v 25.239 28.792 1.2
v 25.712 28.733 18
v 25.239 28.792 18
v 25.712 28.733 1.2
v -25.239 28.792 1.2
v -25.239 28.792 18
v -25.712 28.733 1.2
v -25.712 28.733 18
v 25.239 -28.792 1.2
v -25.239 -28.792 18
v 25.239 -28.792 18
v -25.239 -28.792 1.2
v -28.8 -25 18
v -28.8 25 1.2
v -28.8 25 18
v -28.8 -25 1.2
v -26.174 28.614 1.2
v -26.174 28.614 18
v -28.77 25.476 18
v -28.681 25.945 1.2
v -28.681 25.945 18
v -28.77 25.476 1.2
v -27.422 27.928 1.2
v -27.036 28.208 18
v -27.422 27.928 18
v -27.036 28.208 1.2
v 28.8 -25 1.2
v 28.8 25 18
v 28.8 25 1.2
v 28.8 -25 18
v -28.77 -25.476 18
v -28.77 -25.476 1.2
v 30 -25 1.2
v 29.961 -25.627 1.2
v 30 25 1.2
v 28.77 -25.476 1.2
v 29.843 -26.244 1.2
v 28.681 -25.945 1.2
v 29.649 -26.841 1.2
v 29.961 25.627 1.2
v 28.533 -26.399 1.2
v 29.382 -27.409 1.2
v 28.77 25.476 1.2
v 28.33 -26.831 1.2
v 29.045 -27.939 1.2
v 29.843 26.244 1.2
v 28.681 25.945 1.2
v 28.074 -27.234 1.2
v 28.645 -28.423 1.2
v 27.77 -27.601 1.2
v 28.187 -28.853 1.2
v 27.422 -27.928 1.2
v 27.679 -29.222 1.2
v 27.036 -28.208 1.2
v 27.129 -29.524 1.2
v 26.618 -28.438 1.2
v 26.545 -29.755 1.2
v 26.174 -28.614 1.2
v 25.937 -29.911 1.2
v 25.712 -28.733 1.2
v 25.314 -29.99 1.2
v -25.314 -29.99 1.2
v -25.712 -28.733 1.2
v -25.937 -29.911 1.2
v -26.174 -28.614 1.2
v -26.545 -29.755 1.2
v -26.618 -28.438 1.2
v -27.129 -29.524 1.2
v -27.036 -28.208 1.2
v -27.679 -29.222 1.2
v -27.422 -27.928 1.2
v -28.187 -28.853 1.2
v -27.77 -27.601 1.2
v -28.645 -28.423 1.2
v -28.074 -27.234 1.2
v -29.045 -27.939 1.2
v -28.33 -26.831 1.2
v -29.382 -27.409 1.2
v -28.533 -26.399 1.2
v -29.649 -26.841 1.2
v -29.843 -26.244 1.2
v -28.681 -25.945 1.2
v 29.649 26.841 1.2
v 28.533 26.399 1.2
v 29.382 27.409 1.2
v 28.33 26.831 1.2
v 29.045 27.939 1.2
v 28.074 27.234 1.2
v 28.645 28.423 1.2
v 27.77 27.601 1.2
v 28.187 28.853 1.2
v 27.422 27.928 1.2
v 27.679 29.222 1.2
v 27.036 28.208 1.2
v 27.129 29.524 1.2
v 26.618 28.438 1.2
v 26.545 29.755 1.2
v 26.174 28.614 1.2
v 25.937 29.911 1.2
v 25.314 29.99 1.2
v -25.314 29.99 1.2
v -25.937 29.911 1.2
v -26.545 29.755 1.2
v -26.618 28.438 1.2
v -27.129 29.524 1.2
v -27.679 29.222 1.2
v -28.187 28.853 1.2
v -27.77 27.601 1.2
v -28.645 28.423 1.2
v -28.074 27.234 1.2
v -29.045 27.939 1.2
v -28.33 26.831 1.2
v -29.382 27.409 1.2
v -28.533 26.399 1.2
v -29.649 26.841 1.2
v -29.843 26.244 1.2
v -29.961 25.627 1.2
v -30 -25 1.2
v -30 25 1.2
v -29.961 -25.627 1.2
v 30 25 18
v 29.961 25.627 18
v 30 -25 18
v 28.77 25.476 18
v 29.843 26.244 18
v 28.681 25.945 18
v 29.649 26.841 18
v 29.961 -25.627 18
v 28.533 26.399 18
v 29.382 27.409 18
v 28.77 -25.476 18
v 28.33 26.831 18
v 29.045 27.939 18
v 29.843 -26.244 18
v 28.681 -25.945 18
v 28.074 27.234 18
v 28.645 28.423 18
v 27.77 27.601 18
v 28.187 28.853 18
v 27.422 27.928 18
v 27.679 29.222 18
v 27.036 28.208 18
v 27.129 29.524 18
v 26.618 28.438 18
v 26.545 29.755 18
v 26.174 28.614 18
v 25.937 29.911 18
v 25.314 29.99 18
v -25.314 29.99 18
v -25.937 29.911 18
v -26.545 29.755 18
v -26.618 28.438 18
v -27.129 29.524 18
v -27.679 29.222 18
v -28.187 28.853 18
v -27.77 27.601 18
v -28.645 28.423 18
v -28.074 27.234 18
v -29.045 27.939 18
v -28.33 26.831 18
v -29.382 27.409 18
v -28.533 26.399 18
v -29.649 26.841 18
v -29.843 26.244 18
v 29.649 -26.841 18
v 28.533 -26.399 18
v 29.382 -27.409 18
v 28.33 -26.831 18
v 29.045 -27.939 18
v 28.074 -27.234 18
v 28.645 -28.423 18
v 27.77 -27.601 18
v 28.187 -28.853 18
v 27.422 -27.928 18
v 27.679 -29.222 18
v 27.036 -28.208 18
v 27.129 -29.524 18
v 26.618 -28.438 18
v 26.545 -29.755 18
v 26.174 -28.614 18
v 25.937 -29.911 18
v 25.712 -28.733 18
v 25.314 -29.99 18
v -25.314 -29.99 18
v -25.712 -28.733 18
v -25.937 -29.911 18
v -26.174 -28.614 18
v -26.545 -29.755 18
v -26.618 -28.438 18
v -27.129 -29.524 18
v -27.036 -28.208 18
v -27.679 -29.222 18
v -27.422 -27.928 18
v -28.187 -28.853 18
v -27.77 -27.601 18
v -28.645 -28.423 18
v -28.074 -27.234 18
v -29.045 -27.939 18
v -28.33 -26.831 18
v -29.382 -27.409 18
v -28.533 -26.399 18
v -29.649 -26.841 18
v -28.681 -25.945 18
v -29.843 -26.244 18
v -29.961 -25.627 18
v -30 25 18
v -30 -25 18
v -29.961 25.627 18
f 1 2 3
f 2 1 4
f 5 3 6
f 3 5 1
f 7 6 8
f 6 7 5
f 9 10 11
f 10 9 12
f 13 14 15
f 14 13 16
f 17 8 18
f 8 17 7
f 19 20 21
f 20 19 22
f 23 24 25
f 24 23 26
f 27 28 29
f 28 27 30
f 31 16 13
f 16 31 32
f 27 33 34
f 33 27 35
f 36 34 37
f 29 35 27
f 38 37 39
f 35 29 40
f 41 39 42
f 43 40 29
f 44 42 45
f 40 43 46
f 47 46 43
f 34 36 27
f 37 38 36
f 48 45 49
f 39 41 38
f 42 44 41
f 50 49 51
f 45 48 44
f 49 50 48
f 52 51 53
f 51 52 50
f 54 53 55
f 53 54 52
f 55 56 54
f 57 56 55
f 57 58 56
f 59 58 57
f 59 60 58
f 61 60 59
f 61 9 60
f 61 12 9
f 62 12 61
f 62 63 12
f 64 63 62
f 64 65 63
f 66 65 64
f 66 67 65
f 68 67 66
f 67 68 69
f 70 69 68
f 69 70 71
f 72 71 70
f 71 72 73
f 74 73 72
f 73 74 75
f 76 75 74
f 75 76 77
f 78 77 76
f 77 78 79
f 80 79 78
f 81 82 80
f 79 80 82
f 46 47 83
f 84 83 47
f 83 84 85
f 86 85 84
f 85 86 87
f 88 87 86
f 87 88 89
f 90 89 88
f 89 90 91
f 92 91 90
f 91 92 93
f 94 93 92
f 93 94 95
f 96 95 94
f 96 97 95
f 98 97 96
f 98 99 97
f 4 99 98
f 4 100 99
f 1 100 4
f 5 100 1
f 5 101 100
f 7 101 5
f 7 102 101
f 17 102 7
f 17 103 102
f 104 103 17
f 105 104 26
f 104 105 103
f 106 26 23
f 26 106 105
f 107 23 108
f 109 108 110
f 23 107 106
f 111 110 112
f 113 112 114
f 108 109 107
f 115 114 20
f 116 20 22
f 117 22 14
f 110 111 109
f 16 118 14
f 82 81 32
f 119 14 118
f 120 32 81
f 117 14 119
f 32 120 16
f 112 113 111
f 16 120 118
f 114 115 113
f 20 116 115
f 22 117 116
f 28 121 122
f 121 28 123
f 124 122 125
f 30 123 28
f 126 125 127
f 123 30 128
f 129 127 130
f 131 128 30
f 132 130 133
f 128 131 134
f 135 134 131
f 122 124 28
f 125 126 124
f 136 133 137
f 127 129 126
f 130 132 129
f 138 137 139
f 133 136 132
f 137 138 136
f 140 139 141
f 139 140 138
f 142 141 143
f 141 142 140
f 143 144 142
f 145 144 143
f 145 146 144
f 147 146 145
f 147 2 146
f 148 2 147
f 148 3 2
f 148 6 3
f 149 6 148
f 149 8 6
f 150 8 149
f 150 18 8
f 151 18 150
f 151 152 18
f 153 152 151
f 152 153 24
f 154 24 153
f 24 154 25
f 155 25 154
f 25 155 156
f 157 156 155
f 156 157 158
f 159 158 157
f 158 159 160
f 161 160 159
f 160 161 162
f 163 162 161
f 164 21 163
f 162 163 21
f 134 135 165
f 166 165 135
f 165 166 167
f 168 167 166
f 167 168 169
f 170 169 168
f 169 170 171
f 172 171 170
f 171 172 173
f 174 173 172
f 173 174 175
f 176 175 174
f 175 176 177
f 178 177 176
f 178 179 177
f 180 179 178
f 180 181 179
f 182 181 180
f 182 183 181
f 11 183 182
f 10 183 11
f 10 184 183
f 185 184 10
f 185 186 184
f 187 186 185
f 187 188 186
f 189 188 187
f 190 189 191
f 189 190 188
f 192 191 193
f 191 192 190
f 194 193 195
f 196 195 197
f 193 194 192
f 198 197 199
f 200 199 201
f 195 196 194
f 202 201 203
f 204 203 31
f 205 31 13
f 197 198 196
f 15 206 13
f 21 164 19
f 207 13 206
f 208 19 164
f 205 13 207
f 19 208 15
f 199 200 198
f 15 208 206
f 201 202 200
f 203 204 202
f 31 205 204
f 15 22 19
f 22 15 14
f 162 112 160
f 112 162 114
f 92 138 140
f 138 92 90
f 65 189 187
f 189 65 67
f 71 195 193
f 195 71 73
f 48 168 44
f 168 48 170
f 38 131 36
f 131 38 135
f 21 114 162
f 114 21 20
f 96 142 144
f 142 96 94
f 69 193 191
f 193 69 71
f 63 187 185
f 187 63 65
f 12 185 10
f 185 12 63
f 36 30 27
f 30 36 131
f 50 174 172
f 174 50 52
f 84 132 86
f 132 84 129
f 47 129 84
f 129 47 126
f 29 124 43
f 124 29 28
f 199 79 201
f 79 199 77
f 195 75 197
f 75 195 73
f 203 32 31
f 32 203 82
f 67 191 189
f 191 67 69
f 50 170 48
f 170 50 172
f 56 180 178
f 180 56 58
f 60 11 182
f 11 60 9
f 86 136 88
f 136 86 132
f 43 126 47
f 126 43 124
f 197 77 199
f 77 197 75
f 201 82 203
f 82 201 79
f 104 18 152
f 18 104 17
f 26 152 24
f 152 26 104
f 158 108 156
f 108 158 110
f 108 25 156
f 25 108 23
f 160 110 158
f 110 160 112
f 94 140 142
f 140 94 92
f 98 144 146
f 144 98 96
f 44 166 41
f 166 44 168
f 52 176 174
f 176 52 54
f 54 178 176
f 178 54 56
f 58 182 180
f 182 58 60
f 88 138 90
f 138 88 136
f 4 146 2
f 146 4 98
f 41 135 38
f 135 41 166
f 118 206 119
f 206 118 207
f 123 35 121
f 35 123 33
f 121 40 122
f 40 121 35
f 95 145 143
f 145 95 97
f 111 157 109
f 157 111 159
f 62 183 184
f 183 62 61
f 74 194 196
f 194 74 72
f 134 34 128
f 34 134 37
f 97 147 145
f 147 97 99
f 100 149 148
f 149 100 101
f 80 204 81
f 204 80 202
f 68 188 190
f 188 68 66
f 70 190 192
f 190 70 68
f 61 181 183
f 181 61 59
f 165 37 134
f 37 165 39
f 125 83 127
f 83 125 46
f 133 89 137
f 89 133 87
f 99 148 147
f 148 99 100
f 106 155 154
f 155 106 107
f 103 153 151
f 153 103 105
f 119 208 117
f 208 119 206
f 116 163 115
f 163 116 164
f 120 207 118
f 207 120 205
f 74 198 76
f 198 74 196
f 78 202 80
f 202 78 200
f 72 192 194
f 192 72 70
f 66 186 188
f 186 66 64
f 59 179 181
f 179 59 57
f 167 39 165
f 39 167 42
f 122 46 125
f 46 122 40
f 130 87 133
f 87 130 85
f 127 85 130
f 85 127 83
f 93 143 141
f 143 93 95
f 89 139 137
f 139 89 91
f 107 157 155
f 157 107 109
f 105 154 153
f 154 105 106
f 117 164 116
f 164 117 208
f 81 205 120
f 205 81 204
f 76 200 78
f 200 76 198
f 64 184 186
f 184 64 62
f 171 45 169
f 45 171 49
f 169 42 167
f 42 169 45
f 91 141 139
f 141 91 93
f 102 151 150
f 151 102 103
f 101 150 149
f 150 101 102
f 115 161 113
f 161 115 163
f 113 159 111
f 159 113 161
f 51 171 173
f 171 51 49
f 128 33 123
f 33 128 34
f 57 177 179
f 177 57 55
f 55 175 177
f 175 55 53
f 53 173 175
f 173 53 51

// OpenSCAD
$fn = 50;


difference() {
	union() {
		hull() {
			translate(v = [-25.0000000000, 25.0000000000, 0]) {
				cylinder(h = 18, r = 5);
			}
			translate(v = [25.0000000000, 25.0000000000, 0]) {
				cylinder(h = 18, r = 5);
			}
			translate(v = [-25.0000000000, -25.0000000000, 0]) {
				cylinder(h = 18, r = 5);
			}
			translate(v = [25.0000000000, -25.0000000000, 0]) {
				cylinder(h = 18, r = 5);
			}
		}
	}
	union() {
		translate(v = [0, 0, 1.2000000000]) {
			hull() {
				translate(v = [-25.0000000000, 25.0000000000, 0]) {
					cylinder(h = 16.8000000000, r = 3.8000000000);
				}
				translate(v = [25.0000000000, 25.0000000000, 0]) {
					cylinder(h = 16.8000000000, r = 3.8000000000);
				}
				translate(v = [-25.0000000000, -25.0000000000, 0]) {
					cylinder(h = 16.8000000000, r = 3.8000000000);
				}
				translate(v = [25.0000000000, -25.0000000000, 0]) {
					cylinder(h = 16.8000000000, r = 3.8000000000);
				}
			}
		}
		#translate(v = [-15.0000000000, -15.0000000000, 0]) {
			cylinder(h = 1.2000000000, r = 1.8000000000);
		}
		#translate(v = [-15.0000000000, 15.0000000000, 0]) {
			cylinder(h = 1.2000000000, r = 1.8000000000);
		}
		#translate(v = [15.0000000000, -15.0000000000, 0]) {
			cylinder(h = 1.2000000000, r = 1.8000000000);
		}
		#translate(v = [15.0000000000, 15.0000000000, 0]) {
			cylinder(h = 1.2000000000, r = 1.8000000000);
		}
		translate(v = [-250.0000000000, -250.0000000000, -498.8000000000]) {
			cube(size = [500, 500, 500]);
		}
		translate(v = [-250.0000000000, -250.0000000000, -498.8000000000]) {
			cube(size = [500, 500, 500]);
		}
		translate(v = [-250.0000000000, -250.0000000000, -498.8000000000]) {
			cube(size = [500, 500, 500]);
		}
	}
}
